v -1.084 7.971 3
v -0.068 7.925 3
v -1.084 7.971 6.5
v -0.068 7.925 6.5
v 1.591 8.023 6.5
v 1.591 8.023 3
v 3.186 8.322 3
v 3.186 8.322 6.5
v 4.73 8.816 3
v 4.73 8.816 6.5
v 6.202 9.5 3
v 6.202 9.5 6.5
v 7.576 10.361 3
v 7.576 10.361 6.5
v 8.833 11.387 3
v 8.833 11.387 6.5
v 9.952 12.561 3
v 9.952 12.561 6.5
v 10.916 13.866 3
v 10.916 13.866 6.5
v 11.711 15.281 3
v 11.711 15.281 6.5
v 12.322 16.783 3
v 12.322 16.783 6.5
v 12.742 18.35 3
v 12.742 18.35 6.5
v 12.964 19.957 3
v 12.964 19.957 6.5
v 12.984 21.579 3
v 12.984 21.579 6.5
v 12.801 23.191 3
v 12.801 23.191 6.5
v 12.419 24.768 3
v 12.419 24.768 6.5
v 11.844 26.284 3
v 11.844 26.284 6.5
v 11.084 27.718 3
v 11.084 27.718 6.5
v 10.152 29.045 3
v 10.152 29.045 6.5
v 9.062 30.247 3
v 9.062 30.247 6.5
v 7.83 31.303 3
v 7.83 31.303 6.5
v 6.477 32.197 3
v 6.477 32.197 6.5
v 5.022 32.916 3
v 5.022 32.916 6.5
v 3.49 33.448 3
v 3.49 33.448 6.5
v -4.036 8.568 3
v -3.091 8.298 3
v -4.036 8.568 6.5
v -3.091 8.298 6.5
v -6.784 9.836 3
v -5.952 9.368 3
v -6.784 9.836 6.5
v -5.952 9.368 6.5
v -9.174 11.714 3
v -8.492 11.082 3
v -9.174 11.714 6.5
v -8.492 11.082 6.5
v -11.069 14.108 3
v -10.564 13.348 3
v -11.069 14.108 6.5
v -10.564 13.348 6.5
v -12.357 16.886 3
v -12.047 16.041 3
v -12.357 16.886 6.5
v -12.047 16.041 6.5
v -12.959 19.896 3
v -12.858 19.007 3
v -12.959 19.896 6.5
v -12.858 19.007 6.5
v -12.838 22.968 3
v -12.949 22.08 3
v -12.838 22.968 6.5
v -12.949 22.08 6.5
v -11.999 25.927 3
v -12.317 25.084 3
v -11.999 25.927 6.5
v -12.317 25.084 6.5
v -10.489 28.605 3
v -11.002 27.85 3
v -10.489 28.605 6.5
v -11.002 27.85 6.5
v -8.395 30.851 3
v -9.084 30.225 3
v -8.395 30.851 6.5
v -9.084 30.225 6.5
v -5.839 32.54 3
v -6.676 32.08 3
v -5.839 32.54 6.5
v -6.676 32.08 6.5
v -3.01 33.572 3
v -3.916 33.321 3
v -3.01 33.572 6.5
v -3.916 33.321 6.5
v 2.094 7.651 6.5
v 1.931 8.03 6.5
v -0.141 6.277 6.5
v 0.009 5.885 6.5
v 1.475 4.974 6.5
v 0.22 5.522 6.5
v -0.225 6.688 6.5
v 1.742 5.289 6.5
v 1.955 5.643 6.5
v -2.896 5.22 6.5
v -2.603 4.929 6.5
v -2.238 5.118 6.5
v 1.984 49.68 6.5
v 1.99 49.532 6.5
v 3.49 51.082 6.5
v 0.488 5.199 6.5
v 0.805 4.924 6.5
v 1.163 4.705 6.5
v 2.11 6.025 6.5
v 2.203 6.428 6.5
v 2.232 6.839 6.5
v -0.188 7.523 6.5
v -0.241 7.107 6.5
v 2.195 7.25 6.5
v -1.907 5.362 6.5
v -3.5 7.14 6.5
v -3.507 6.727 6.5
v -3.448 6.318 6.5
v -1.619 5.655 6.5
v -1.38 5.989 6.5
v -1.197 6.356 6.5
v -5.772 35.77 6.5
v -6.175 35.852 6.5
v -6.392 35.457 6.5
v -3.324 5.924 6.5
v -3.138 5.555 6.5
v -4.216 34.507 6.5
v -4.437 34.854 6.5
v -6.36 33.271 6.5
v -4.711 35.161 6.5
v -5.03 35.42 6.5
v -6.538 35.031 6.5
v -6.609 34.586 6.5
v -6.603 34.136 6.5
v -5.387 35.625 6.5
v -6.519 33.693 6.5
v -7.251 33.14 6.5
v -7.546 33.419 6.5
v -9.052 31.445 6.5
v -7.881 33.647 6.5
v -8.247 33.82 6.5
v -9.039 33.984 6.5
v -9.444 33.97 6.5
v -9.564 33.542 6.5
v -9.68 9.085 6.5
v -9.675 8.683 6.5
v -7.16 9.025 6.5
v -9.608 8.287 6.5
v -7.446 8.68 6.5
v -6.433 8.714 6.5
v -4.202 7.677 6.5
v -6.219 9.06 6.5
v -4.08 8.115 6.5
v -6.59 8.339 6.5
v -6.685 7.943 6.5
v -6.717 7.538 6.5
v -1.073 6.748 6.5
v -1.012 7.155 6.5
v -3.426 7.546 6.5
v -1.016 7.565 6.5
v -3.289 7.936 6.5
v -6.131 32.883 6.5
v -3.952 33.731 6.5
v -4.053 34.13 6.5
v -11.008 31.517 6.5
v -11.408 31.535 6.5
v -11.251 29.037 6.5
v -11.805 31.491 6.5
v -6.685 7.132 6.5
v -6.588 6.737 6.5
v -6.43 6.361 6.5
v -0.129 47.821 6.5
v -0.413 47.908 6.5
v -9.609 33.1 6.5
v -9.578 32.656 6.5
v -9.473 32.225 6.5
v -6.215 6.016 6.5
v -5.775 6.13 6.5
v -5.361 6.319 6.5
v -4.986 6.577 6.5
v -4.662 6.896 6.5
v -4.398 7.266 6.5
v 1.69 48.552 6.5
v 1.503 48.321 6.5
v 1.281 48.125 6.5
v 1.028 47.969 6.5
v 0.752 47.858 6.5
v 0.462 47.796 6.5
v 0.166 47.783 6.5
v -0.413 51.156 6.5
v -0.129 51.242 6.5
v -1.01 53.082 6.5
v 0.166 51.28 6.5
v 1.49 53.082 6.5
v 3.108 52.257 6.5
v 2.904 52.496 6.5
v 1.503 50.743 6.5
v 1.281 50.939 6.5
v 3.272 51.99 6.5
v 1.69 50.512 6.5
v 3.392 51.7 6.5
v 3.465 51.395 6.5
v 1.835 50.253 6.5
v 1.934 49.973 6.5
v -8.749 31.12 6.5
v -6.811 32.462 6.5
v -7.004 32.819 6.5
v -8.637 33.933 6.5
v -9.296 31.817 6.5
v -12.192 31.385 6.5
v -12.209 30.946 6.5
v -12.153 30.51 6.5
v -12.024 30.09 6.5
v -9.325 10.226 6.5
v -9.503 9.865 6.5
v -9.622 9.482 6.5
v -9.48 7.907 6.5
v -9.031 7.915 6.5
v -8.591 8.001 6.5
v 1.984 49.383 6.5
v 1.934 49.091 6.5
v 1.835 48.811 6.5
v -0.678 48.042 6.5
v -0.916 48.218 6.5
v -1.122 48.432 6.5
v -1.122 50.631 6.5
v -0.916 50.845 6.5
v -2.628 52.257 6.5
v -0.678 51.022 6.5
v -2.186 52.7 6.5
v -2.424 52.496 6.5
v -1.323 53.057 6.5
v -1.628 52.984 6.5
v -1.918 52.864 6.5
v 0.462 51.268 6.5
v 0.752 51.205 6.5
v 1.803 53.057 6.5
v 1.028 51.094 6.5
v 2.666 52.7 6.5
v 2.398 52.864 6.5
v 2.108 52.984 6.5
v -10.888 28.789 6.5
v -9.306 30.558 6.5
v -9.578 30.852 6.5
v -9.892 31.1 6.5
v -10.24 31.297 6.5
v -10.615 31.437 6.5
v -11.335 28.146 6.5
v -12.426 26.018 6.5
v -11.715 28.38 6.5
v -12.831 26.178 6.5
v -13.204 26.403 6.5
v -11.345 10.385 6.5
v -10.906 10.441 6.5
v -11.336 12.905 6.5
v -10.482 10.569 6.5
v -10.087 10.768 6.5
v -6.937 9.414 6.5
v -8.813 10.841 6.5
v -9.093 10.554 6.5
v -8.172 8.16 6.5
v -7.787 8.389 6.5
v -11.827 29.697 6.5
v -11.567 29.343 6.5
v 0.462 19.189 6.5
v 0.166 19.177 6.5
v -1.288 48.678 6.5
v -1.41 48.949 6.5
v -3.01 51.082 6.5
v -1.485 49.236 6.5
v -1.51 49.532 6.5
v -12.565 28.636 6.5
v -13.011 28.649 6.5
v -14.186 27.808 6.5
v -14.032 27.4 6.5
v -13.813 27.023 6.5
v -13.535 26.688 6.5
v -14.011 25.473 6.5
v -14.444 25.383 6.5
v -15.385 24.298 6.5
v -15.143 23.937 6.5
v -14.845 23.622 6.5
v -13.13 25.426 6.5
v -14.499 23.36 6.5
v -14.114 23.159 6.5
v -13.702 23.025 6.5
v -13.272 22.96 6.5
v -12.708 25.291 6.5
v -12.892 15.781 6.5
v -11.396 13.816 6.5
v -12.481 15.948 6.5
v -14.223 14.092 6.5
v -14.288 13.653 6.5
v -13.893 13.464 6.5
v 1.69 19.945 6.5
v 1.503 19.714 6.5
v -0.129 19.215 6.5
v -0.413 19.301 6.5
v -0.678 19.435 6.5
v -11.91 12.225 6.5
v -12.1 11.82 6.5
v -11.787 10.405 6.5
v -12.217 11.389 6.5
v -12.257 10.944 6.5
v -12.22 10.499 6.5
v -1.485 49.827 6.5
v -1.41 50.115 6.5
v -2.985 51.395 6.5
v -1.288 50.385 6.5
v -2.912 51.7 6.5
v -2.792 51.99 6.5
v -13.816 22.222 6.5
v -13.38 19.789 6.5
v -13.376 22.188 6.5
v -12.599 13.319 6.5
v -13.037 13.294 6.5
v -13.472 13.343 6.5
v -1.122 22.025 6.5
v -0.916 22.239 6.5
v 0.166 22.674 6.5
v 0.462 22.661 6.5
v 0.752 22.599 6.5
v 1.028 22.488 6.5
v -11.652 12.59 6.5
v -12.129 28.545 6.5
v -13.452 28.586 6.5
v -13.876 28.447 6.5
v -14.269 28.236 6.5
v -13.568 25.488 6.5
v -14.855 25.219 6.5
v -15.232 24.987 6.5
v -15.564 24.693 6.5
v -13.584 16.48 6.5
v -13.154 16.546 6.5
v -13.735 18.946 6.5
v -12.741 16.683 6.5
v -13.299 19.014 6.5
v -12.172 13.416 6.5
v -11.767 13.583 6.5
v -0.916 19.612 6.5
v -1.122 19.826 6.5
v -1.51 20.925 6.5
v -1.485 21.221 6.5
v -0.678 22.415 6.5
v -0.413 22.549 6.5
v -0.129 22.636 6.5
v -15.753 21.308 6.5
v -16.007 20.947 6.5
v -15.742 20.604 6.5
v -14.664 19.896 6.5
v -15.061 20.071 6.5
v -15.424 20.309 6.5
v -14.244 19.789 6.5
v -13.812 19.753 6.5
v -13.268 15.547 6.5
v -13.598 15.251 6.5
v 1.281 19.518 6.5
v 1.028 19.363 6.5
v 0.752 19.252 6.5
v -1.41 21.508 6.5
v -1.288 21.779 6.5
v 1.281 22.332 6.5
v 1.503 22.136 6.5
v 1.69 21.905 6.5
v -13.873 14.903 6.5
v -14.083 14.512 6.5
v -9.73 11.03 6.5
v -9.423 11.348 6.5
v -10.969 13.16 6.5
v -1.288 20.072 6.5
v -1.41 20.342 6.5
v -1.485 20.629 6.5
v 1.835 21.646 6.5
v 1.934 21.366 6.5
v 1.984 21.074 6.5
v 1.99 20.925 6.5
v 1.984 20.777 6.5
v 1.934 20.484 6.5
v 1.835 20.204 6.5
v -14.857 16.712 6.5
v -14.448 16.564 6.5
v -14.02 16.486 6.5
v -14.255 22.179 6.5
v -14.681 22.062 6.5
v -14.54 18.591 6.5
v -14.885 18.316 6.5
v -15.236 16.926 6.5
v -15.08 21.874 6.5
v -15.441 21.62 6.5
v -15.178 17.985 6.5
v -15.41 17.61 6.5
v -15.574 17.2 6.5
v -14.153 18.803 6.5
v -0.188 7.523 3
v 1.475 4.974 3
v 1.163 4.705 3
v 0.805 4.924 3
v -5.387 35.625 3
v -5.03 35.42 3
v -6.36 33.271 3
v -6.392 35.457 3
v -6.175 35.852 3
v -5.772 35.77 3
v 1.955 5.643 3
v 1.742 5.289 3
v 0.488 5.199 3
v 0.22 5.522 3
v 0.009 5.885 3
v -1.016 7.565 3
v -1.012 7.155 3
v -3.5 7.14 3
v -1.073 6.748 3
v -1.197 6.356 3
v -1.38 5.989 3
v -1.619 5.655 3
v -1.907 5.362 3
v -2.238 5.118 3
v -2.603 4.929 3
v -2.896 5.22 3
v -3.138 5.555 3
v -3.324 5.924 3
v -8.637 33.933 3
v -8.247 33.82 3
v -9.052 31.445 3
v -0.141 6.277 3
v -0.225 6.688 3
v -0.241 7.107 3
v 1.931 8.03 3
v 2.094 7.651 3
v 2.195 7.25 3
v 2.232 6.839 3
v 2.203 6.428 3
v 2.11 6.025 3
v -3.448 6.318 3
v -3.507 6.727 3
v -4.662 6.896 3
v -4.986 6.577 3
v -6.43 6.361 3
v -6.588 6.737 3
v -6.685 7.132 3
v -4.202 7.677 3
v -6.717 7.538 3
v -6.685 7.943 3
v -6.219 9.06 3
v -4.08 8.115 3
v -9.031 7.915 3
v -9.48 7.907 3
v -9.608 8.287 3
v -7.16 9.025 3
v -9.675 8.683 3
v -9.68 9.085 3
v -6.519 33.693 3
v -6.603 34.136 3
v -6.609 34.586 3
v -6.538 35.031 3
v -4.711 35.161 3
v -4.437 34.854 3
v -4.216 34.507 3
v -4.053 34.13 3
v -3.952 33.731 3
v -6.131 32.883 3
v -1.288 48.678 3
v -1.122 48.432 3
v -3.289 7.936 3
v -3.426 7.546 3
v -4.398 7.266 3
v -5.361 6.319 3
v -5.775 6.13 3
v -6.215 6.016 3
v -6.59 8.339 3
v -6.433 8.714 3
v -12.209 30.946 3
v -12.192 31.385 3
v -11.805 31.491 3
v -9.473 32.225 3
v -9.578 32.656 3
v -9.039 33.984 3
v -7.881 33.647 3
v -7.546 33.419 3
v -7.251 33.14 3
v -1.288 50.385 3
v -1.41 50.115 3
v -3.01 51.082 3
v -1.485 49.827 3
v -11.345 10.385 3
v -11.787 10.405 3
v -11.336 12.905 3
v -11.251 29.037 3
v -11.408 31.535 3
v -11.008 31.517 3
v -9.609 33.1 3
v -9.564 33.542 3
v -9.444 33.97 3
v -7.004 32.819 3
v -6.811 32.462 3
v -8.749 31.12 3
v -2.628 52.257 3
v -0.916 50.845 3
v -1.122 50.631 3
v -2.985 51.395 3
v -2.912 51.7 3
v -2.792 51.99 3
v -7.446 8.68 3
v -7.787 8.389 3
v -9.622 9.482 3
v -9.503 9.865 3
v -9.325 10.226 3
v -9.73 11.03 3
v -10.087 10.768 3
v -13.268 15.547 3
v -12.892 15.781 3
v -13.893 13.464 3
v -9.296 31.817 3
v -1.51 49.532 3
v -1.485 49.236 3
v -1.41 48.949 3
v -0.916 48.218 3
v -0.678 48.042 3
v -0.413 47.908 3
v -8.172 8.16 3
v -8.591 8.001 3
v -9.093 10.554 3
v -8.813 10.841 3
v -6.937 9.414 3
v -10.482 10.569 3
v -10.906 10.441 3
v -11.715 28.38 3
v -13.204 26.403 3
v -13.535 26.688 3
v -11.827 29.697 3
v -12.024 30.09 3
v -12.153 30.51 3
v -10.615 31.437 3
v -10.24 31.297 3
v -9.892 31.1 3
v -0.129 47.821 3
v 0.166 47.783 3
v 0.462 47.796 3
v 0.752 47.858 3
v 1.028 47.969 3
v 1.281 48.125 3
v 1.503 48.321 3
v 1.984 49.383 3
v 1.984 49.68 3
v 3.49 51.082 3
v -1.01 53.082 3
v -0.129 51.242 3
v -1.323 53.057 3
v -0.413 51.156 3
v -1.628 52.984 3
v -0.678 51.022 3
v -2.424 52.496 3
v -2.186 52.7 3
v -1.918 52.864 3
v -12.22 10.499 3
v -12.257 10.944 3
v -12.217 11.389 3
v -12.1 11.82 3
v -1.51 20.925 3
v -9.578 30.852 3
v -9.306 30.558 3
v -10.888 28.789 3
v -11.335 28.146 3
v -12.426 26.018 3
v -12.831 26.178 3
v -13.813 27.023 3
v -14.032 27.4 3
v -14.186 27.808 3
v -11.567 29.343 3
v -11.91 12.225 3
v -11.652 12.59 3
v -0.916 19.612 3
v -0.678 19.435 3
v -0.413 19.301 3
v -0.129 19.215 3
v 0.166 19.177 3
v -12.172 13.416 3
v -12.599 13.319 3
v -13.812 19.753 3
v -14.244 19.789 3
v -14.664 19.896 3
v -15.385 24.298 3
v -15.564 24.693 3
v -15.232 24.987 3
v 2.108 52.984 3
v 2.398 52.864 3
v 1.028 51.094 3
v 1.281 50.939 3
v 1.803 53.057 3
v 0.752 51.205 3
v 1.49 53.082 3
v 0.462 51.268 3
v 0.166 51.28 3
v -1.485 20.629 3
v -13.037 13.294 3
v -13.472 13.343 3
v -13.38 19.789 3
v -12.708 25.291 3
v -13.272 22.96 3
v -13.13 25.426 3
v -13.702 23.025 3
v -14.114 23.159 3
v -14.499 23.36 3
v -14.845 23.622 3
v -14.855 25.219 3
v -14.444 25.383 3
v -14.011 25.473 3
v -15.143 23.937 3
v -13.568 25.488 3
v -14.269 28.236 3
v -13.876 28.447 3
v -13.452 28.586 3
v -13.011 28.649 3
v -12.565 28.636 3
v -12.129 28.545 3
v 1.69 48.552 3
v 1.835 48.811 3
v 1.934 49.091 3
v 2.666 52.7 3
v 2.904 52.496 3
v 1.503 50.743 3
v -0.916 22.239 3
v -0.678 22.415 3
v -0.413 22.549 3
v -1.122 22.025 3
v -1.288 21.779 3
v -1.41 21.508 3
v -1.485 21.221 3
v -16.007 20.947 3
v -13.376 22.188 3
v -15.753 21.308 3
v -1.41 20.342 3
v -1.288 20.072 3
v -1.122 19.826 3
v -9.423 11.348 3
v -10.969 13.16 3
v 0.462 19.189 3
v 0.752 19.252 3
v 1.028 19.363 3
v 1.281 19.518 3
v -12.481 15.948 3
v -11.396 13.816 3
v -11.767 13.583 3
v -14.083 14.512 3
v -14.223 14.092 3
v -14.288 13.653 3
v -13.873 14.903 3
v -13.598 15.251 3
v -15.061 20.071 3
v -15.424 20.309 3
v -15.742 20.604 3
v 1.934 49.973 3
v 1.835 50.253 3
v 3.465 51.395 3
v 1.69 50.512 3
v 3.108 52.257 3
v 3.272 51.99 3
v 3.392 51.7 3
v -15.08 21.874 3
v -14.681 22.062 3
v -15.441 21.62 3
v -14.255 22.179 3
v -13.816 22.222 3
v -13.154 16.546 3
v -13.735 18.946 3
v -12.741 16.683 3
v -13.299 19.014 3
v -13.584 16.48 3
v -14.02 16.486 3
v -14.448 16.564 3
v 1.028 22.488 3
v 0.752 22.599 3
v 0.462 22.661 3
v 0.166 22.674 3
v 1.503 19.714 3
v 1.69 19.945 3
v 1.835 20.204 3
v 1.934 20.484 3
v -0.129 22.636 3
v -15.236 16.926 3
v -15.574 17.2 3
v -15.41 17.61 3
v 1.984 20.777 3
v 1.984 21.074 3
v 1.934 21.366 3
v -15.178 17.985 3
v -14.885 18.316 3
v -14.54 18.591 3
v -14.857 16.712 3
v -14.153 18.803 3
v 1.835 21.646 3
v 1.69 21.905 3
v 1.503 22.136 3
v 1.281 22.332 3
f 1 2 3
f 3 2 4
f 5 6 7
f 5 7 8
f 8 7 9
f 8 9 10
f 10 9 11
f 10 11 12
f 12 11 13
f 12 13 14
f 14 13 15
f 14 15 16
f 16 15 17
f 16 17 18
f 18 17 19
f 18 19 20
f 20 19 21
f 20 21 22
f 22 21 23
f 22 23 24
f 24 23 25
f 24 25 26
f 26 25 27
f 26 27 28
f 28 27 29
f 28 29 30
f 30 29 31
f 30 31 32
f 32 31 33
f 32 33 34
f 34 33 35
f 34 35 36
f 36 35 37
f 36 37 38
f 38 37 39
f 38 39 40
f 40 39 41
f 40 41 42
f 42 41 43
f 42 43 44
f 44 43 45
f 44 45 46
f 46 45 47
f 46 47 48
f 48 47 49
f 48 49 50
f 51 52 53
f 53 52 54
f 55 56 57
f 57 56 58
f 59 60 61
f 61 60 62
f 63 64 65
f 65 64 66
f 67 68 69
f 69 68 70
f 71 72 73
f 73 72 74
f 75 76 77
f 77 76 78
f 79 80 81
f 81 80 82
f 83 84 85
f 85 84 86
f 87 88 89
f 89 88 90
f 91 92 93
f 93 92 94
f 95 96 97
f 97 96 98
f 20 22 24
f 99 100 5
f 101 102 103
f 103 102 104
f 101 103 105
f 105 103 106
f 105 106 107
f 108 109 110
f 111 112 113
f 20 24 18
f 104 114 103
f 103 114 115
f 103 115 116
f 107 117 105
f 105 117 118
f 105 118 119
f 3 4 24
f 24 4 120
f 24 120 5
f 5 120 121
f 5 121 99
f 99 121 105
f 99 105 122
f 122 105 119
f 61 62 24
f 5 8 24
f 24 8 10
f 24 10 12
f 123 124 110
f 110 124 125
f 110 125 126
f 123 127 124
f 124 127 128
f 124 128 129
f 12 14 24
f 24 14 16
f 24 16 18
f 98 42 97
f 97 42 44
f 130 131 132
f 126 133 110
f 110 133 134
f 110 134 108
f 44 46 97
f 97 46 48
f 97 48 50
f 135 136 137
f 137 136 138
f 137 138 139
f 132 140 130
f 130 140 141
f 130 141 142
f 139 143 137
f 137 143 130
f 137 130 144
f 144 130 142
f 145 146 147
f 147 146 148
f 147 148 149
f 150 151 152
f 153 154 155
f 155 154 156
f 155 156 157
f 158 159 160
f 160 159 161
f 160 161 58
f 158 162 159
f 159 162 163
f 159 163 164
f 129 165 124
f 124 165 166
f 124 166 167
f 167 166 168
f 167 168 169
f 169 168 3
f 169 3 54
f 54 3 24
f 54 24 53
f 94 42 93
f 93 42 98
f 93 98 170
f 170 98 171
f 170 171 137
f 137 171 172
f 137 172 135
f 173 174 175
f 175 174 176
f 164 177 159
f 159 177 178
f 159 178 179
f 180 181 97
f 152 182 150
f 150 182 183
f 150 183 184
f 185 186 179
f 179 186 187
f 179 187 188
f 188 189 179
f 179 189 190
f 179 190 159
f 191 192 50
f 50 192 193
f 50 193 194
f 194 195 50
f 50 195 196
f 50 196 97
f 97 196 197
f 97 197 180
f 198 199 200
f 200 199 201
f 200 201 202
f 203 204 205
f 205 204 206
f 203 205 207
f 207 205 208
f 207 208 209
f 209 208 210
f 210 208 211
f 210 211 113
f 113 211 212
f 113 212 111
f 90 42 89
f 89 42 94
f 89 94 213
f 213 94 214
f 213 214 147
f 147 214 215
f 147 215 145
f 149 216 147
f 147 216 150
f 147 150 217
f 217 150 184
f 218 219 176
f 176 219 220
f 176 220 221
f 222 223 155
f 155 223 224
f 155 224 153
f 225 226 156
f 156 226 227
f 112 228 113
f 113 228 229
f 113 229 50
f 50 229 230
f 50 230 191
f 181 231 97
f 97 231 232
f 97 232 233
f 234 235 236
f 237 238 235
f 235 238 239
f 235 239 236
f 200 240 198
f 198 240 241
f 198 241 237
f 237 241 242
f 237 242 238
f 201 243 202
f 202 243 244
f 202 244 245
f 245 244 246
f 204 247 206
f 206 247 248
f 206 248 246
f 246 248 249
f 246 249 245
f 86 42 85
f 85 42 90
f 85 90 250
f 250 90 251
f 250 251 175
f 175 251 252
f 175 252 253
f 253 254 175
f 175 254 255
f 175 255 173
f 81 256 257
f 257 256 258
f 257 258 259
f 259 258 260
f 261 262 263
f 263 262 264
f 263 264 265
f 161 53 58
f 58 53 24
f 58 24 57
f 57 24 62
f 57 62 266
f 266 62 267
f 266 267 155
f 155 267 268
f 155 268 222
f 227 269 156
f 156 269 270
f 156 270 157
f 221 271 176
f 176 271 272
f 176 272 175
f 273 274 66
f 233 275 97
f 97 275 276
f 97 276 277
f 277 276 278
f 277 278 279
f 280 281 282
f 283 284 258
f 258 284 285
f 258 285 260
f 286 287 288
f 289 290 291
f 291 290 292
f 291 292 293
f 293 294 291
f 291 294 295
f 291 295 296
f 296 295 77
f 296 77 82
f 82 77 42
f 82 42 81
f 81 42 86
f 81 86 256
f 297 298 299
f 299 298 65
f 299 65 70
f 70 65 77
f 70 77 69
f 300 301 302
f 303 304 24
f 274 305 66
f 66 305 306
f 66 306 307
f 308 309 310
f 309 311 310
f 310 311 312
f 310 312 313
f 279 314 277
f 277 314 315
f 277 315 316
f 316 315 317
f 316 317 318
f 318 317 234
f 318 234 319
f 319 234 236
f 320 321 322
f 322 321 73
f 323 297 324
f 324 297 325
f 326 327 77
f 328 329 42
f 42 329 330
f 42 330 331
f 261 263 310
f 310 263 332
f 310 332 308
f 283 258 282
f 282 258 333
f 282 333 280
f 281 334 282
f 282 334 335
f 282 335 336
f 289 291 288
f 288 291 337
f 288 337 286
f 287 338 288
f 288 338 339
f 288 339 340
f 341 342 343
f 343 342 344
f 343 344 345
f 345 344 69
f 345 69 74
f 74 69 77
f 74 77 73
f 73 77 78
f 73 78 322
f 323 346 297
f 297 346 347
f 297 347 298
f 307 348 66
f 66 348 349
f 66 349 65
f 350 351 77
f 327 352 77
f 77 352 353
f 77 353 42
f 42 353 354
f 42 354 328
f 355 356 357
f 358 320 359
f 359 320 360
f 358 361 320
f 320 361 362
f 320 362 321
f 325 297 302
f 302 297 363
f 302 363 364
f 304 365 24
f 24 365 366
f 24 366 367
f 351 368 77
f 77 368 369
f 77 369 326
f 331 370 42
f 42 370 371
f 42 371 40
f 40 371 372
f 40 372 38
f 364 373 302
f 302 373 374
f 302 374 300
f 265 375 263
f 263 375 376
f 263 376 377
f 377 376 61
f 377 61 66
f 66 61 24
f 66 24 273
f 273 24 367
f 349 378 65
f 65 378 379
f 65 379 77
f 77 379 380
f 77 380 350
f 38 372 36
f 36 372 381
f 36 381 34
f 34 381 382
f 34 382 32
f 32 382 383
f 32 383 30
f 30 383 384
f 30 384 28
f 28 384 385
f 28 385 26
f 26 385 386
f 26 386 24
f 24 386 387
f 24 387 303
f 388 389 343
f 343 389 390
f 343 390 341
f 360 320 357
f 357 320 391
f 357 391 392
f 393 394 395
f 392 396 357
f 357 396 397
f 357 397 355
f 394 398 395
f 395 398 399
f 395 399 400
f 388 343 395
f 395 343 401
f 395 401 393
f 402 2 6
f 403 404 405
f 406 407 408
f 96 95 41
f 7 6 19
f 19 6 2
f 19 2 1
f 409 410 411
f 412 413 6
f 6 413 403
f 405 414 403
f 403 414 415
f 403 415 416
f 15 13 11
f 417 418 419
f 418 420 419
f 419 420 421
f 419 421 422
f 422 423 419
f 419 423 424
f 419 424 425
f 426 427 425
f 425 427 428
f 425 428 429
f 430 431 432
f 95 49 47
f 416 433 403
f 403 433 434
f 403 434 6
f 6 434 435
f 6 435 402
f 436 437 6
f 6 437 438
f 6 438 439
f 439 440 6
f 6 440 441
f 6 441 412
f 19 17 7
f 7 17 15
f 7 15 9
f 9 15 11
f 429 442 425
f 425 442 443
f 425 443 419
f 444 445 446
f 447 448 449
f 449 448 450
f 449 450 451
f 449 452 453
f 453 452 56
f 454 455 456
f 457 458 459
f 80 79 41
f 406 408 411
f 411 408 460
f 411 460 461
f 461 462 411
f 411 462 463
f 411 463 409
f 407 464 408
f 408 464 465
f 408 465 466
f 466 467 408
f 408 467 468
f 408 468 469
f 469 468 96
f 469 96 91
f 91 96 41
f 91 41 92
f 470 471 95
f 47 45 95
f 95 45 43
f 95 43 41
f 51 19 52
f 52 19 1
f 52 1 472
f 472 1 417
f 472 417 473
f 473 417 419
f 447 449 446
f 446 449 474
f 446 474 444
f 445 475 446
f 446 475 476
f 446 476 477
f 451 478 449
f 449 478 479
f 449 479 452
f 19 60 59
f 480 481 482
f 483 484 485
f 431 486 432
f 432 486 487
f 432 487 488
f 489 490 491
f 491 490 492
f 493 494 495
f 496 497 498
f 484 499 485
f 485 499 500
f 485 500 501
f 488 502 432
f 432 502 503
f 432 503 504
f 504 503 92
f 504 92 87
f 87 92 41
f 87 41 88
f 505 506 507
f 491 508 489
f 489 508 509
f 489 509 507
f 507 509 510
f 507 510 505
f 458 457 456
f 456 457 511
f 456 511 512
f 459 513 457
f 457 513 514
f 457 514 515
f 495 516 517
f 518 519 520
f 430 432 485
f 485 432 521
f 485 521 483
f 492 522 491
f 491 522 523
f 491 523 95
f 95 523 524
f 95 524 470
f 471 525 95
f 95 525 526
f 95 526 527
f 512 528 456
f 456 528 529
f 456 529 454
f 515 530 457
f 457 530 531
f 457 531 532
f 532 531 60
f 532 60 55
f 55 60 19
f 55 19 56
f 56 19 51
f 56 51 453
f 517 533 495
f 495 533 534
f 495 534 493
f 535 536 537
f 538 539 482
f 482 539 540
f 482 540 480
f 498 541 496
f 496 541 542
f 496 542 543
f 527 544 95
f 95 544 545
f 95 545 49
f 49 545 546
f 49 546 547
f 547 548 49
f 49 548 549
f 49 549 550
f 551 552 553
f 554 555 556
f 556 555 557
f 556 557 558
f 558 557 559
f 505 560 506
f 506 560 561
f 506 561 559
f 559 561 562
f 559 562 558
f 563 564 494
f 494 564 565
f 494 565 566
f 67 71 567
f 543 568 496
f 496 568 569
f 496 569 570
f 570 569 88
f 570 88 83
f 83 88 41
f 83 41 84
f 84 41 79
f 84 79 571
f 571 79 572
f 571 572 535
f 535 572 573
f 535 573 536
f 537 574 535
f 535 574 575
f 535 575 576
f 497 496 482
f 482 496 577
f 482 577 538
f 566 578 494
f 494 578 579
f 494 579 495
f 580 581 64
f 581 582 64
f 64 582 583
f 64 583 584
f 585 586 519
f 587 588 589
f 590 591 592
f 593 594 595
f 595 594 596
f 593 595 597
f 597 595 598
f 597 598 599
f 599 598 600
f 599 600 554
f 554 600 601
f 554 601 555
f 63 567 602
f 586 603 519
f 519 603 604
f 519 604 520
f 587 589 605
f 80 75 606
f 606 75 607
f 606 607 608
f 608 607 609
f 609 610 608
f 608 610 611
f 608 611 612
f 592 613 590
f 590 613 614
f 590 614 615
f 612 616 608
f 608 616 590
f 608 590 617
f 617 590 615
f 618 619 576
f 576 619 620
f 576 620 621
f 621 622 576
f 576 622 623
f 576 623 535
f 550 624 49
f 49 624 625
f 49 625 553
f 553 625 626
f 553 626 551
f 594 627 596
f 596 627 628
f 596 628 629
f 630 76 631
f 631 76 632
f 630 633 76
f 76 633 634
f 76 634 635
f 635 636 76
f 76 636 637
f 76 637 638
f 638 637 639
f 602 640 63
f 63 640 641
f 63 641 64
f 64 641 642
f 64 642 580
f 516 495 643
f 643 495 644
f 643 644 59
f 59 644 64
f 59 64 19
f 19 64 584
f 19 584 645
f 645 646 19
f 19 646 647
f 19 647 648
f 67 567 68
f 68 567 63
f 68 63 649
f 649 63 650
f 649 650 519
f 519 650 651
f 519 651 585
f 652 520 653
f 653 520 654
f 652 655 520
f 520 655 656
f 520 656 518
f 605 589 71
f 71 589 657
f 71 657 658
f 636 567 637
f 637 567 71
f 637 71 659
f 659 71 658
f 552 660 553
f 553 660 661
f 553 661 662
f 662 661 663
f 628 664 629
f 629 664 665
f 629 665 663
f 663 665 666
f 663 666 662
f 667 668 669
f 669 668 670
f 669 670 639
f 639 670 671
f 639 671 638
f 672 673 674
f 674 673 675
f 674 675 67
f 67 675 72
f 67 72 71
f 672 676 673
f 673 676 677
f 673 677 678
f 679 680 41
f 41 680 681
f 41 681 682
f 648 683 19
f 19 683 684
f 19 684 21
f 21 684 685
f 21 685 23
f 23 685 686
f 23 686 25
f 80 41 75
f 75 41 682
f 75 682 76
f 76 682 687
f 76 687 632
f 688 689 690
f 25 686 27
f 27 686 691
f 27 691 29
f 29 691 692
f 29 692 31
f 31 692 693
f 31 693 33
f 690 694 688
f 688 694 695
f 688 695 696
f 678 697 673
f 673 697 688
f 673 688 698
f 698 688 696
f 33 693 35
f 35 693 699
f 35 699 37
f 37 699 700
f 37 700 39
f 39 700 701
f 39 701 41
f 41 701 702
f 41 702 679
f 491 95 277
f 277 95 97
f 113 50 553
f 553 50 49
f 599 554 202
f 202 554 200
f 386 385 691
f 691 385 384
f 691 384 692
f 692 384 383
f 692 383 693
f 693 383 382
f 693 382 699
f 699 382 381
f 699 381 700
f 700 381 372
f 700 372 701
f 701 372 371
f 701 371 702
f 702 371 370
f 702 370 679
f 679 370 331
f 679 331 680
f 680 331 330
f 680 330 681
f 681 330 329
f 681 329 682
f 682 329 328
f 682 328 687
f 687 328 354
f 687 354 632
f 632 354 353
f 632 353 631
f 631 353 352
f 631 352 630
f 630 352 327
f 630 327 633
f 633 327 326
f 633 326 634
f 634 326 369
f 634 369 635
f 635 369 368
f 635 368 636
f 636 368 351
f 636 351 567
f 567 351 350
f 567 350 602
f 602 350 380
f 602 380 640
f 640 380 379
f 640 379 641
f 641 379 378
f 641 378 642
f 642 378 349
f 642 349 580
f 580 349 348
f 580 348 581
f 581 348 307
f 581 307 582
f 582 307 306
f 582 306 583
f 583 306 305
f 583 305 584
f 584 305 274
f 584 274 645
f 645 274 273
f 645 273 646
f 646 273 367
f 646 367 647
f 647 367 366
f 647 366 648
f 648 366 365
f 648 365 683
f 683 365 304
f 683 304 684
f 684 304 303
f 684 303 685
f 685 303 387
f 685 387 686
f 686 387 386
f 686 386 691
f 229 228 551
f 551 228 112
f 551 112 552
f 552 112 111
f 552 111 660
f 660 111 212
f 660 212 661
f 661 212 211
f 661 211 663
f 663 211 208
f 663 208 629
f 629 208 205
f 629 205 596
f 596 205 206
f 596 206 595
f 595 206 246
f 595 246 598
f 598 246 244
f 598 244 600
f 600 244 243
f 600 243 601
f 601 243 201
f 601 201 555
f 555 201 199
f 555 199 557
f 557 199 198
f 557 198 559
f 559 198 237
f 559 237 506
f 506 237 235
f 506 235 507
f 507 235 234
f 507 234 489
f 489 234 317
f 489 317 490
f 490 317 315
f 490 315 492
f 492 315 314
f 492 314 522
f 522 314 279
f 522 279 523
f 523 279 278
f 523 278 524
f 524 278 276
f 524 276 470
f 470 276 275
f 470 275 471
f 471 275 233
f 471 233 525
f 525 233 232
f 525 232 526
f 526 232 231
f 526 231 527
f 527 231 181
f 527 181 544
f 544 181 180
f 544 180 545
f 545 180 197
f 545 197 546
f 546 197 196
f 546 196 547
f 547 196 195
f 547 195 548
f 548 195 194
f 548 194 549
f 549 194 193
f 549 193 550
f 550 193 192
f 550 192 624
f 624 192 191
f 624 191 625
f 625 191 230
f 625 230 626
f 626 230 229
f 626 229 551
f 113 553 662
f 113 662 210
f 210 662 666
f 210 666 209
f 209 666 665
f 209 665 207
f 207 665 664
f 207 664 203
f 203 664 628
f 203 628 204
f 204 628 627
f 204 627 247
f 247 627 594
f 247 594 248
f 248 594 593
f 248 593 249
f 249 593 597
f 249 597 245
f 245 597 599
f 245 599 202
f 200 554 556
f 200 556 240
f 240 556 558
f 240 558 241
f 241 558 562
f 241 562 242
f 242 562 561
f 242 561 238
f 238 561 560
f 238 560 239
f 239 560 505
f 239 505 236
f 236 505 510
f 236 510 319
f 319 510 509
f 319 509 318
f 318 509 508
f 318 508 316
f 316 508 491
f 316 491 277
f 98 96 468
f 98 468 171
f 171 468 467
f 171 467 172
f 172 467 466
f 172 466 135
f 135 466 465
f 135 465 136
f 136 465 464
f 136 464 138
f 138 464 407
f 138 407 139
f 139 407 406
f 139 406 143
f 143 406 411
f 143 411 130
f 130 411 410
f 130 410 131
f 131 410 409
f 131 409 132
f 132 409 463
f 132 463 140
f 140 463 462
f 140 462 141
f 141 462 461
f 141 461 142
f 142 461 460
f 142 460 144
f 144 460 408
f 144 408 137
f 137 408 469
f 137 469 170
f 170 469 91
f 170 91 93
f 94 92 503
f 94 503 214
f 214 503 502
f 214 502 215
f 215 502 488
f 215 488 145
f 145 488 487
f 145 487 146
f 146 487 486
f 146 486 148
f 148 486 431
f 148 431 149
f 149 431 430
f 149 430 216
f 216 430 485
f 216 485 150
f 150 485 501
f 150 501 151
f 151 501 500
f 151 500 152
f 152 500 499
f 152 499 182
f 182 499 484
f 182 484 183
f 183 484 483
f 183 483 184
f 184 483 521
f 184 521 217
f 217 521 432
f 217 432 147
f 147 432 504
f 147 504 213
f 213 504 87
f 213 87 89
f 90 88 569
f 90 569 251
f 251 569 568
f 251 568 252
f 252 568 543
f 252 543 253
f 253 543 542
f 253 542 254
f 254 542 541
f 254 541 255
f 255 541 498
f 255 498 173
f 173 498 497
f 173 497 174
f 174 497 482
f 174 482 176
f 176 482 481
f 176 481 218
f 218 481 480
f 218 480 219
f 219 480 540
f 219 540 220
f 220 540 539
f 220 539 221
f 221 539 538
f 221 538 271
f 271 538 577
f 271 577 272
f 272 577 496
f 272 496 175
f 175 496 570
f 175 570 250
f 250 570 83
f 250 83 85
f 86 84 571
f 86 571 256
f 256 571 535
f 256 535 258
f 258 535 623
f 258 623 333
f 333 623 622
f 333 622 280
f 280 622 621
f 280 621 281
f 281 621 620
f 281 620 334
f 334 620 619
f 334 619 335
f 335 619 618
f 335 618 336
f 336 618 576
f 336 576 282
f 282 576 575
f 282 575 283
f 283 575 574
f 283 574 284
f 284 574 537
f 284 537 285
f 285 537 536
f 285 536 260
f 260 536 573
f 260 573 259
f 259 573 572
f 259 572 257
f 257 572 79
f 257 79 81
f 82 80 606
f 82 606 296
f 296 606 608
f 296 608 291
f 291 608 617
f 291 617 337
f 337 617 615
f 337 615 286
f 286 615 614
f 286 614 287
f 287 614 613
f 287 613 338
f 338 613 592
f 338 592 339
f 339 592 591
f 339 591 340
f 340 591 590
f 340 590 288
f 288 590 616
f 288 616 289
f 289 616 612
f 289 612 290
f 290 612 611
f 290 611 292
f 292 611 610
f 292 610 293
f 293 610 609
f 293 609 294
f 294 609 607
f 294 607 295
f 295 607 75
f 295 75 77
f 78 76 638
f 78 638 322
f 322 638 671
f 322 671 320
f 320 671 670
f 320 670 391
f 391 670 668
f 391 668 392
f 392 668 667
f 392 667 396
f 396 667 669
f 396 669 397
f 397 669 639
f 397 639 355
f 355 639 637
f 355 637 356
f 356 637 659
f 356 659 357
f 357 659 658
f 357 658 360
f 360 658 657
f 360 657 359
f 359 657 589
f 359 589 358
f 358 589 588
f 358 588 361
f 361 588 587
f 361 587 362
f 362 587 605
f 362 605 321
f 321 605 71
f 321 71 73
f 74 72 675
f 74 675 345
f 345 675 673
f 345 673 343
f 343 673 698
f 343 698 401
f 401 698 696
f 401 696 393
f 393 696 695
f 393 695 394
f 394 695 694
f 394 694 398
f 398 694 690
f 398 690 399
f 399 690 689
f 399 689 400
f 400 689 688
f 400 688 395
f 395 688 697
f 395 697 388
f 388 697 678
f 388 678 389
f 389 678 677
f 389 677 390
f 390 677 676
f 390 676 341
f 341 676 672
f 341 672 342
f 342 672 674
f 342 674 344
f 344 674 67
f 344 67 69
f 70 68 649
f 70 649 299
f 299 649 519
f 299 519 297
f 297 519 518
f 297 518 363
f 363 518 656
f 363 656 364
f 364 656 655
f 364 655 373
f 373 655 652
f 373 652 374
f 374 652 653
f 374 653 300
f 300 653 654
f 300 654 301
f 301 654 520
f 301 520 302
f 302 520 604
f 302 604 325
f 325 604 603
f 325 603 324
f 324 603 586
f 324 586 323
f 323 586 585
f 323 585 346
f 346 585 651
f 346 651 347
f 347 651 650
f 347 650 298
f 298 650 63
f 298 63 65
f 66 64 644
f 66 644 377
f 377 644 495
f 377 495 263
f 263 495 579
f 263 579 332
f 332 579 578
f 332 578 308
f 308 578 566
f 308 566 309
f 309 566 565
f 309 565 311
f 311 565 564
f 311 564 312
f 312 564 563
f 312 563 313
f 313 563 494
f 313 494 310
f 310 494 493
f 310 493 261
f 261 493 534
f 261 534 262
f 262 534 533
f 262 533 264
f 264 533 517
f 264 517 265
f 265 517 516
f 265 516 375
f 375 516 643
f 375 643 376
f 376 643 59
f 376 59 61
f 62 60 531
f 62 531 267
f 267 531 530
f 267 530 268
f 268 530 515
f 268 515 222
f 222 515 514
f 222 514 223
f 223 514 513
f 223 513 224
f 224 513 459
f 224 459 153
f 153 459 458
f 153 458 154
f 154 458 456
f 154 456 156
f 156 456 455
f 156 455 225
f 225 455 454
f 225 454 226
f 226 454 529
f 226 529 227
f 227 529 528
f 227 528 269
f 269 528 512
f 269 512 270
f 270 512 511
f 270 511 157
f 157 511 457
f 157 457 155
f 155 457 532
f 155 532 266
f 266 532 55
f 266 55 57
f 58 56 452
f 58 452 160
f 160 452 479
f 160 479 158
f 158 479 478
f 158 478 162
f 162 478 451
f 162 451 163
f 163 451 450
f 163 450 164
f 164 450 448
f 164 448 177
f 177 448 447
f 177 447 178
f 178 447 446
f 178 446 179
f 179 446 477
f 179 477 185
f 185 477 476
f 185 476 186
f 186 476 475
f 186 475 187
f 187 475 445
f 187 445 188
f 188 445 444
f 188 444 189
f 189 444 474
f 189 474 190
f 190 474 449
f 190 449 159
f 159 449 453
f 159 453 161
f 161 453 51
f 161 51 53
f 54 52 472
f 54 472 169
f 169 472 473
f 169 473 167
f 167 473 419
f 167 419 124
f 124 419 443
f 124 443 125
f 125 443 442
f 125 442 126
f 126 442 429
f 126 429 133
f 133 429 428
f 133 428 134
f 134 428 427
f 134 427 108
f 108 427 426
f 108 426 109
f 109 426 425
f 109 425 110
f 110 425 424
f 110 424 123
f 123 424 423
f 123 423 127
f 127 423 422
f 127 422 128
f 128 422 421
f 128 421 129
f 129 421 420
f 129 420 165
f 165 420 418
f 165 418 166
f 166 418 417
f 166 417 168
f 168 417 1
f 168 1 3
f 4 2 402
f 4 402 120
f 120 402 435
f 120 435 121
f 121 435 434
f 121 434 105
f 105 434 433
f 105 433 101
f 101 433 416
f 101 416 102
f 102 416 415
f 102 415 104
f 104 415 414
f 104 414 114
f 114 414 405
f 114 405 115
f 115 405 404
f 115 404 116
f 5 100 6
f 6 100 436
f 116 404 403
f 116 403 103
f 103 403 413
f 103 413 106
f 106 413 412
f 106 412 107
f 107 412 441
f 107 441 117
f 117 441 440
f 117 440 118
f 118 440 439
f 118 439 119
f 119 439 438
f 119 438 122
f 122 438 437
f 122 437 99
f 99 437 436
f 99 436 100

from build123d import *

# Parameters (mm, degrees)
SKETCH5_R           = 13
BOSS_EXTRUDE3_DEPTH = 3.5
SKETCH6_W           = 6.5
SKETCH6_H           = 20
BOSS_EXTRUDE4_DEPTH = 3.5
SKETCH9_R           = 1.75
CUT_EXTRUDE1_DEPTH  = 3.5
FILLET1_R           = 2
BOSS_EXTRUDE5_DEPTH = 3.5


with BuildPart() as part:
    # Sketch5 → Boss-Extrude3 (new body)
    with BuildSketch(Plane.XY.offset(3)):
        with Locations((0, 20.92523633)):
            Circle(SKETCH5_R)
    extrude(amount=BOSS_EXTRUDE3_DEPTH)

    # Sketch6 → Boss-Extrude4 (add)
    with BuildSketch(Plane.XY.offset(3)):
        with Locations((0.239986303, 43.081718219)):
            Rectangle(SKETCH6_W, SKETCH6_H)
    extrude(amount=BOSS_EXTRUDE4_DEPTH)

    # Sketch9 → Cut-Extrude1 (cut)
    with BuildSketch(Plane(origin=(0, 0, 3), x_dir=(-1, 0, 0), z_dir=(0, 0, -1))):
        with Locations((-0.239986303, 49.531718219)):
            Circle(SKETCH9_R)
        with Locations((-0.239986303, 20.92523633)):
            Circle(SKETCH9_R)
    extrude(amount=-CUT_EXTRUDE1_DEPTH, mode=Mode.SUBTRACT)

    # Fillet1
    fillet1_edges = [part.edges().sort_by_distance(p)[0] for p in [
        (-3.010013697, 53.081718219, 4.75),
        (3.489986303, 53.081718219, 4.75),
    ]]
    fillet(fillet1_edges, radius=FILLET1_R)

    # Sketch10 → Boss-Extrude5 (add)
    with BuildSketch(Plane.XY.offset(3)):
        with BuildLine():
            Line((-5.759354429, 32.464504571), (-3.919377514, 33.177547189))
            ThreePointArc((-3.919377514, 33.177547189), (-4.520656892, 34.95869799), (-6.174793625, 35.851931857))
            ThreePointArc((-6.174793625, 35.851931857), (-6.596620884, 34.081009637), (-5.759354429, 32.464504571))
        make_face()
        with BuildLine():
            Line((-8.258779816, 30.769918915), (-6.632838661, 31.888069256))
            ThreePointArc((-6.632838661, 31.888069256), (-7.628672119, 33.482544339), (-9.444215288, 33.970230789))
            ThreePointArc((-9.444215288, 33.970230789), (-9.446269369, 32.149763946), (-8.258779816, 30.769918915))
        make_face()
        with BuildLine():
            Line((-10.300034522, 28.544603873), (-8.975784035, 30.007582162))
            ThreePointArc((-8.975784035, 30.007582162), (-10.312485934, 31.329422963), (-12.191559136, 31.385270693))
            ThreePointArc((-12.191559136, 31.385270693), (-11.773729303, 29.613401065), (-10.300034522, 28.544603873))
        make_face()
        with BuildLine():
            Line((-11.773073977, 25.908526755), (-10.821904846, 27.637463454))
            ThreePointArc((-10.821904846, 27.637463454), (-12.427413239, 28.615409193), (-14.268715153, 28.236407437))
            ThreePointArc((-14.268715153, 28.236407437), (-13.45352672, 26.608656975), (-11.773073977, 25.908526755))
        make_face()
        with BuildLine():
            Line((-12.598486243, 23.00379916), (-12.071676241, 24.905486844))
            ThreePointArc((-12.071676241, 24.905486844), (-13.859437756, 25.486816213), (-15.563703318, 24.693397054))
            ThreePointArc((-15.563703318, 24.693397054), (-14.395103305, 23.297518207), (-12.598486243, 23.00379916))
        make_face()
        with BuildLine():
            Line((-12.731773131, 19.987015705), (-12.657722722, 21.958933898))
            ThreePointArc((-12.657722722, 21.958933898), (-14.531358672, 22.11230728), (-16.006710485, 20.947244151))
            ThreePointArc((-16.006710485, 20.947244151), (-14.547698421, 19.858489109), (-12.731773131, 19.987015705))
        make_face()
        with BuildLine():
            Line((-12.16574911, 17.020811966), (-12.54845037, 18.956654049))
            ThreePointArc((-12.54845037, 18.956654049), (-14.406952557, 18.673803046), (-15.573854024, 17.199904801))
            ThreePointArc((-15.573854024, 17.199904801), (-13.903085626, 16.476968629), (-12.16574911, 17.020811966))
        make_face()
        with BuildLine():
            Line((-10.930928682, 14.265096756), (-11.749750088, 16.060500981))
            ThreePointArc((-11.749750088, 16.060500981), (-13.492926178, 15.356674163), (-14.288469337, 13.653399038))
            ThreePointArc((-14.288469337, 13.653399038), (-12.496016163, 13.335255413), (-10.930928682, 14.265096756))
        make_face()
        with BuildLine():
            Line((-9.093881336, 11.868431394), (-10.304680013, 13.426607054))
            ThreePointArc((-10.304680013, 13.426607054), (-11.838554931, 12.339747907), (-12.219851845, 10.498919905))
            ThreePointArc((-12.219851845, 10.498919905), (-10.40234551, 10.602720033), (-9.093881336, 11.868431394))
        make_face()
        with BuildLine():
            Line((-6.753642769, 9.96002073), (-8.291144248, 11.196966172))
            ThreePointArc((-8.291144248, 11.196966172), (-9.533026401, 9.785667555), (-9.479521255, 7.90652619))
            ThreePointArc((-9.479521255, 7.90652619), (-7.734943995, 8.426674178), (-6.753642769, 9.96002073))
        make_face()
        with BuildLine():
            Line((-4.036375849, 8.642747678), (-5.817693027, 9.491778853))
            ThreePointArc((-5.817693027, 9.491778853), (-6.700632226, 7.832124238), (-6.215209496, 6.015974508))
            ThreePointArc((-6.215209496, 6.015974508), (-4.637611923, 6.924429043), (-4.036375849, 8.642747678))
        make_face()
        with BuildLine():
            Line((-1.088569138, 7.987626768), (-3.017670745, 8.402972186))
            ThreePointArc((-3.017670745, 8.402972186), (-3.494067509, 6.584433984), (-2.60289646, 4.92918499))
            ThreePointArc((-2.60289646, 4.92918499), (-1.277327268, 6.176971054), (-1.088569138, 7.987626768))
        make_face()
        with BuildLine():
            Line((1.93086034, 8.029975738), (-0.042027328, 7.98924402))
            ThreePointArc((-0.042027328, 7.98924402), (-0.086198985, 6.109860096), (1.162677121, 4.704746741))
            ThreePointArc((1.162677121, 4.704746741), (2.164756155, 6.224595863), (1.93086034, 8.029975738))
        make_face()
    extrude(amount=BOSS_EXTRUDE5_DEPTH)


solid = part.part
